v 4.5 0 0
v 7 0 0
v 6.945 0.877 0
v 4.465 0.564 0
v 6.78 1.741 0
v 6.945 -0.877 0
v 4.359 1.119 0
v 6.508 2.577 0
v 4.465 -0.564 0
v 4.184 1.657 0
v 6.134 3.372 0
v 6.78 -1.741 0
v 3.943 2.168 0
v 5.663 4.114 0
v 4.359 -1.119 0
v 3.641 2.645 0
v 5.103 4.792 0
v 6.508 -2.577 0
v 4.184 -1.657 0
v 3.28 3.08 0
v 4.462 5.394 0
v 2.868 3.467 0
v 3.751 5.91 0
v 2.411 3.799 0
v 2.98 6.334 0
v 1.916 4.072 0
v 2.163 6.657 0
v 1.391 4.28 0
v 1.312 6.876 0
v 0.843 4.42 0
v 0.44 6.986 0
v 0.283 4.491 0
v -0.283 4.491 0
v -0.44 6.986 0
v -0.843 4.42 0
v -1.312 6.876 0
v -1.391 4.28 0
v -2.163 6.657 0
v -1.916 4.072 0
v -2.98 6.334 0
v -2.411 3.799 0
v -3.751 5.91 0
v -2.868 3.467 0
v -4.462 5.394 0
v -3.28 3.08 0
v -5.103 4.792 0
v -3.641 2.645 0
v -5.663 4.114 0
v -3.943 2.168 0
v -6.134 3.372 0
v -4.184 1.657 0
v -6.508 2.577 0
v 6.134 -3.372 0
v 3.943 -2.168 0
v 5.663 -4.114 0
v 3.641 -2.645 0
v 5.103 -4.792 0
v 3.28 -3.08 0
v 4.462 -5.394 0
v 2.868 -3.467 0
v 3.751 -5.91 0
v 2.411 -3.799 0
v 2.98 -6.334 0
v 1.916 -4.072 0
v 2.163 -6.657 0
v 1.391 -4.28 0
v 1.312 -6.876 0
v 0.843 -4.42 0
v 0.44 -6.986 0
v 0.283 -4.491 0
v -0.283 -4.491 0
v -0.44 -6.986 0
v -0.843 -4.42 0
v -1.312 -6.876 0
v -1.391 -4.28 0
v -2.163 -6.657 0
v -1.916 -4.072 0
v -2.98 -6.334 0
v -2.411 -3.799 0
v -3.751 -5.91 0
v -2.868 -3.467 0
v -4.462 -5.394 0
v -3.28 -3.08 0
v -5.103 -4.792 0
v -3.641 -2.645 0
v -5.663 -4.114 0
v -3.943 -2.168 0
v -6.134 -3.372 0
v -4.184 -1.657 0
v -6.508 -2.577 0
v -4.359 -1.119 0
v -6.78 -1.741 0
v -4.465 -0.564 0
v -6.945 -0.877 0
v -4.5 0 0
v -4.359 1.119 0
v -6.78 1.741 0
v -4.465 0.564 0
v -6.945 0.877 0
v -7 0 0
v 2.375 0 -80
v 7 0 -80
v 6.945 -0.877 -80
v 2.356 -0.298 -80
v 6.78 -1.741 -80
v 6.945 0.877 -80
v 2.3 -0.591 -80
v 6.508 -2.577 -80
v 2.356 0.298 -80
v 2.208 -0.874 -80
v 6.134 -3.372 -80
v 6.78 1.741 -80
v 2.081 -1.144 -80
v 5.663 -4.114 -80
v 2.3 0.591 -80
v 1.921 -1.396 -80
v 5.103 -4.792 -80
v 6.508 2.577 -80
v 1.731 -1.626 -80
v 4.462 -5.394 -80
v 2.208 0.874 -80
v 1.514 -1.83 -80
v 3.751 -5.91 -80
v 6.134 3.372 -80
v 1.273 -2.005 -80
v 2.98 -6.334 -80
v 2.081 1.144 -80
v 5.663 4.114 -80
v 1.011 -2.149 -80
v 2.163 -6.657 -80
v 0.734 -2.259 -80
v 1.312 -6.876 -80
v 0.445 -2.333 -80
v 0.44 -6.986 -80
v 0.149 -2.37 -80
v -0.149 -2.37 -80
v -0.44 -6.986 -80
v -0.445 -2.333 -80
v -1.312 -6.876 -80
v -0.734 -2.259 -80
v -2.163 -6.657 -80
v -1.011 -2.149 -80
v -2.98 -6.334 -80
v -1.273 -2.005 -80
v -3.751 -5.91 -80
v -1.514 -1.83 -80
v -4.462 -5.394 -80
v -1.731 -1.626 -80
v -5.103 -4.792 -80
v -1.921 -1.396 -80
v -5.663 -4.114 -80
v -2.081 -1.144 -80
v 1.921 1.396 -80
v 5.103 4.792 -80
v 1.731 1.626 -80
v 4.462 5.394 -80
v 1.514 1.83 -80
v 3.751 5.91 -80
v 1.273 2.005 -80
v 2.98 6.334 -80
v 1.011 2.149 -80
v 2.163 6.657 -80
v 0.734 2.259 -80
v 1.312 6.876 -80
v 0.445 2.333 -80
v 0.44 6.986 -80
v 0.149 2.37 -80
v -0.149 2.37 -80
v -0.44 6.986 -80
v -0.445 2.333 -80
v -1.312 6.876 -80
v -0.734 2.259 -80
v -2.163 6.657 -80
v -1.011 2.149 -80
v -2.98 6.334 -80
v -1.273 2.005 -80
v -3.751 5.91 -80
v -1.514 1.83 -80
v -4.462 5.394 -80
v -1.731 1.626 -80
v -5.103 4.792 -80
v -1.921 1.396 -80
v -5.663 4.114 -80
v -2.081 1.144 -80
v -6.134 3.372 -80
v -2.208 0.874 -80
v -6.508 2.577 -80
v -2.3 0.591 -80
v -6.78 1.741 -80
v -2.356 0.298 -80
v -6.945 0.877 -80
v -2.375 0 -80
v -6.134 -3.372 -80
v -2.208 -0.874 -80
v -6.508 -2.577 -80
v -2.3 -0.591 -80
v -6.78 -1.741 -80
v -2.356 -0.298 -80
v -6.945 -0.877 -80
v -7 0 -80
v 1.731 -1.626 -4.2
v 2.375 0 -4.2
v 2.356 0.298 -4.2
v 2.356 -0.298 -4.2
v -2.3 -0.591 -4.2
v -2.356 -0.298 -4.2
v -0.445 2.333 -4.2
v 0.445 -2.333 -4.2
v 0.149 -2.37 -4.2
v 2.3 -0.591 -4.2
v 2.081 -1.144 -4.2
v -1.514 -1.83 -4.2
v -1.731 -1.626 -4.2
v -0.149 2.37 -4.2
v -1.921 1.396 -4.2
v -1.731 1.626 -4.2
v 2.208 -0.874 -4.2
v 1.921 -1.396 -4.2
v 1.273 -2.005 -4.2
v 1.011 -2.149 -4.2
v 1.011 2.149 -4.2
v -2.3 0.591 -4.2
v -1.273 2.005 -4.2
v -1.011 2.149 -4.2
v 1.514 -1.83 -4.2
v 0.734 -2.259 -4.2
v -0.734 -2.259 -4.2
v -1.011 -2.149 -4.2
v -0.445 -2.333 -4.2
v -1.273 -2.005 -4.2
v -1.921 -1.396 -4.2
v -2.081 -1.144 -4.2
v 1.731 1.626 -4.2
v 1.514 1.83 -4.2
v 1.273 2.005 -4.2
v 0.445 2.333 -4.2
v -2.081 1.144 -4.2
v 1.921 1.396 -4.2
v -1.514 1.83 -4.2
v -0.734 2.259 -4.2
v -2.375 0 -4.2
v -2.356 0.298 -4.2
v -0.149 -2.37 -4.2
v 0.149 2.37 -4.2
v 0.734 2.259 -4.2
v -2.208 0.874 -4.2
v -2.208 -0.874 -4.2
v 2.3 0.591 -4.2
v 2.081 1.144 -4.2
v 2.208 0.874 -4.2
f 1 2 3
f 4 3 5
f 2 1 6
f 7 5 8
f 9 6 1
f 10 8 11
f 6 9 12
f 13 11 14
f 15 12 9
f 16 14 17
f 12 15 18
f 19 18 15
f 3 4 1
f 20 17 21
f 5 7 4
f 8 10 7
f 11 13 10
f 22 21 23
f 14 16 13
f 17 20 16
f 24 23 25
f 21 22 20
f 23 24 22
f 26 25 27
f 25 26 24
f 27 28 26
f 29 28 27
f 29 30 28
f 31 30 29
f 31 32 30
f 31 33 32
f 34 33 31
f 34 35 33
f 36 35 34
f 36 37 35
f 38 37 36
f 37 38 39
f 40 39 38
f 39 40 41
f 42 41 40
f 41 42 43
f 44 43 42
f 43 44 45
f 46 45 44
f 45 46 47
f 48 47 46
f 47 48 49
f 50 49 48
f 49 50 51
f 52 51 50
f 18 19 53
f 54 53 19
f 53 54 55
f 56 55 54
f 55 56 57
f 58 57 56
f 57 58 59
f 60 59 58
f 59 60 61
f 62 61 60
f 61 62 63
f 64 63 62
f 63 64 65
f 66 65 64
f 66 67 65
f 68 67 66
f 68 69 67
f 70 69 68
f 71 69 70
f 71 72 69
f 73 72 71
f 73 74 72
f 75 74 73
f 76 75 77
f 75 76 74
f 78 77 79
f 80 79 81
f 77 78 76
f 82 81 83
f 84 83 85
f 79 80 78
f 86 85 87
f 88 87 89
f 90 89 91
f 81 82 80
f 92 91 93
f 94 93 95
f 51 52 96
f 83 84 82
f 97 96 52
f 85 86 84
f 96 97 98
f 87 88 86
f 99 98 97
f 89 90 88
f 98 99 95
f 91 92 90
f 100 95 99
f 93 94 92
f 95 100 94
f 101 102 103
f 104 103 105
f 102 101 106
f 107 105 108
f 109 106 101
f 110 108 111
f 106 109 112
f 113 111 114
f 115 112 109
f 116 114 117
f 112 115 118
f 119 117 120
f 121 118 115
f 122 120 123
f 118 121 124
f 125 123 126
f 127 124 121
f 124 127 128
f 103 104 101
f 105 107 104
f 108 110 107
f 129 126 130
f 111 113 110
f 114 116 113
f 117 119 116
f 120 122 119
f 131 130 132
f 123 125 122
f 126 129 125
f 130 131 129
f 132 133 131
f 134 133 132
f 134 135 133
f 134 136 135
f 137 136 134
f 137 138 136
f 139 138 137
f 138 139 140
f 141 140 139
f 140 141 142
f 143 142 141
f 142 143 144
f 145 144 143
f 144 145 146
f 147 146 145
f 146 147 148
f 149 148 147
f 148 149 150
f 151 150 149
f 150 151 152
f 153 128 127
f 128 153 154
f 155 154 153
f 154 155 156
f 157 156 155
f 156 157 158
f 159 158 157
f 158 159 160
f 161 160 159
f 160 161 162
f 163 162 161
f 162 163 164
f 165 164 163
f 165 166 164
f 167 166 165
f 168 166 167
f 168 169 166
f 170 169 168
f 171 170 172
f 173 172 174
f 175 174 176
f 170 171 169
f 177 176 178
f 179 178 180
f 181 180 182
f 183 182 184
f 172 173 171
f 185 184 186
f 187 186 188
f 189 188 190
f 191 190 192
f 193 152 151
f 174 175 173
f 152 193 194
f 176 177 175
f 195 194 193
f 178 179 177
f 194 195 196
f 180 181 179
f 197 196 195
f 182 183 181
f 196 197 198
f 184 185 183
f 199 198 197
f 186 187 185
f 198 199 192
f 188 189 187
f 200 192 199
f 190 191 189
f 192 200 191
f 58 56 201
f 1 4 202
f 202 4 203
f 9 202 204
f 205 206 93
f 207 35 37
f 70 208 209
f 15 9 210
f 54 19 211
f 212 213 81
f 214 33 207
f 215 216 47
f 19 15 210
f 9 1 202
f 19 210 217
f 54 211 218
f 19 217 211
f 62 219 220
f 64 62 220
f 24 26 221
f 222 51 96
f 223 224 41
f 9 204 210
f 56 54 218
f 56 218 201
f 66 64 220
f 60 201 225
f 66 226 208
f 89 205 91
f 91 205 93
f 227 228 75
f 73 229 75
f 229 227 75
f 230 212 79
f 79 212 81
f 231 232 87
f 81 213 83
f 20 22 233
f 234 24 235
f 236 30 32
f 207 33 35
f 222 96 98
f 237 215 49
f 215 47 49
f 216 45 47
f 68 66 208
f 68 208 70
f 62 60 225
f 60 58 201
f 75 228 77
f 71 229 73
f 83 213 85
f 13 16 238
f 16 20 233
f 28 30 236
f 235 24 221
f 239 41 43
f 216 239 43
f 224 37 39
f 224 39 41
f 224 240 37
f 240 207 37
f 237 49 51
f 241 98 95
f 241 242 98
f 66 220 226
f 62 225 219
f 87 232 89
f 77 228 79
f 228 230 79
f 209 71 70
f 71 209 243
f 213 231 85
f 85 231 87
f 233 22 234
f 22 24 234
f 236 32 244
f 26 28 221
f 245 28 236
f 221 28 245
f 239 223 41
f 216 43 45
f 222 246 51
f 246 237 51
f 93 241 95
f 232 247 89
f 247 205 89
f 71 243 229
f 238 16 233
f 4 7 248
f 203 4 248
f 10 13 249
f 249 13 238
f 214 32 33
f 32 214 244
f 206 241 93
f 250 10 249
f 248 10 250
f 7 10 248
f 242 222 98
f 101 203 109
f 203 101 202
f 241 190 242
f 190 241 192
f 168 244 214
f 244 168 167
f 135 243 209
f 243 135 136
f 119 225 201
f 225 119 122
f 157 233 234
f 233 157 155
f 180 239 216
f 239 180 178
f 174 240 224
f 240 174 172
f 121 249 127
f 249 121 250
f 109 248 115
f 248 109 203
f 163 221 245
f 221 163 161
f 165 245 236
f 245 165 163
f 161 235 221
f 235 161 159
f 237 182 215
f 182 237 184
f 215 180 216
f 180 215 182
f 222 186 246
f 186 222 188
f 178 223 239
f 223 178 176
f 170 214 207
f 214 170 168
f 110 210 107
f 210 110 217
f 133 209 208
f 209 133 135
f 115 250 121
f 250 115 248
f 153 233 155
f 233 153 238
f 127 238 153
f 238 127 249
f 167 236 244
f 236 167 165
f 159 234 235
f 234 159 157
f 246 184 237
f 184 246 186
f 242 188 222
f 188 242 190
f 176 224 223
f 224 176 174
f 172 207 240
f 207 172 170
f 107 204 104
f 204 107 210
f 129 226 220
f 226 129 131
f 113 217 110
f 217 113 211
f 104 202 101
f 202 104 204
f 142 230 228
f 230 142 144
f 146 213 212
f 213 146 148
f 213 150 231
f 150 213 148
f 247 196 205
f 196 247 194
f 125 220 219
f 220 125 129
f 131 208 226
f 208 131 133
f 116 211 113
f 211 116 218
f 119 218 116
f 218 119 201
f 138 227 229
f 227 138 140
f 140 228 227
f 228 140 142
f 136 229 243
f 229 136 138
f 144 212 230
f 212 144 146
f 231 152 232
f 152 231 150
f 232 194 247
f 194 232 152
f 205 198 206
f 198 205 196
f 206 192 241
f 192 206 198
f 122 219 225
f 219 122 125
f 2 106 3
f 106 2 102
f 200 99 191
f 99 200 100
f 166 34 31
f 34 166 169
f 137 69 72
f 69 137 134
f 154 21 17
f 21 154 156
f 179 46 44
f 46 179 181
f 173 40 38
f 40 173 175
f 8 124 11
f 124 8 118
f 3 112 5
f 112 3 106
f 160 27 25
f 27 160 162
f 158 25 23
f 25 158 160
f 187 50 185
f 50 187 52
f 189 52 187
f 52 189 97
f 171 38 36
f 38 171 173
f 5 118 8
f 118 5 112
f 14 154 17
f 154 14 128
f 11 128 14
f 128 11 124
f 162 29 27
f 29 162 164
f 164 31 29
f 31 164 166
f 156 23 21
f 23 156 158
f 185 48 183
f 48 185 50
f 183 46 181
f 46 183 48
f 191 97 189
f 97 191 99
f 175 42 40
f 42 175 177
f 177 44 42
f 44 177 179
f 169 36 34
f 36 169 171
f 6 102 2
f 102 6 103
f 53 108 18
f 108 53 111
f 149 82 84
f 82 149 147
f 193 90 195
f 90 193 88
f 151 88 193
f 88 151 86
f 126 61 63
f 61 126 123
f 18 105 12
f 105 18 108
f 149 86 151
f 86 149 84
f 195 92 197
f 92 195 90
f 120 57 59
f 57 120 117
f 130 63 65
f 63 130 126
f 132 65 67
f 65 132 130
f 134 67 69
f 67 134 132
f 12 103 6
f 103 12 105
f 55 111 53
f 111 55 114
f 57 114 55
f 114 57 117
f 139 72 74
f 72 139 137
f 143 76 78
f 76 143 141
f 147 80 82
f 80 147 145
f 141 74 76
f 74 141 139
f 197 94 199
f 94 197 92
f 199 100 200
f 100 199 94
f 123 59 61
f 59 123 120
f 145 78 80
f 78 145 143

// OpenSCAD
$fn = 50;


difference() {
	union() {
		translate(v = [0, 0, -80.0000000000]) {
			cylinder(h = 80, r = 7.0000000000);
		}
		cylinder(h = 0, r = 16.0000000000);
	}
	union() {
		translate(v = [0, 0, 0]) {
			rotate(a = [0, 0, 0]) {
				difference() {
					union() {
						#translate(v = [0, 0, -80.0000000000]) {
							cylinder(h = 80, r = 2.2500000000);
						}
						#translate(v = [0, 0, -4.2000000000]) {
							cylinder(h = 4.2000000000, r1 = 2.3750000000, r2 = 4.5000000000);
						}
						#translate(v = [0, 0, -80.0000000000]) {
							cylinder(h = 80, r = 2.3750000000);
						}
						#translate(v = [0, 0, -80.0000000000]) {
							cylinder(h = 80, r = 2.2500000000);
						}
					}
					union();
				}
			}
		}
	}
}
